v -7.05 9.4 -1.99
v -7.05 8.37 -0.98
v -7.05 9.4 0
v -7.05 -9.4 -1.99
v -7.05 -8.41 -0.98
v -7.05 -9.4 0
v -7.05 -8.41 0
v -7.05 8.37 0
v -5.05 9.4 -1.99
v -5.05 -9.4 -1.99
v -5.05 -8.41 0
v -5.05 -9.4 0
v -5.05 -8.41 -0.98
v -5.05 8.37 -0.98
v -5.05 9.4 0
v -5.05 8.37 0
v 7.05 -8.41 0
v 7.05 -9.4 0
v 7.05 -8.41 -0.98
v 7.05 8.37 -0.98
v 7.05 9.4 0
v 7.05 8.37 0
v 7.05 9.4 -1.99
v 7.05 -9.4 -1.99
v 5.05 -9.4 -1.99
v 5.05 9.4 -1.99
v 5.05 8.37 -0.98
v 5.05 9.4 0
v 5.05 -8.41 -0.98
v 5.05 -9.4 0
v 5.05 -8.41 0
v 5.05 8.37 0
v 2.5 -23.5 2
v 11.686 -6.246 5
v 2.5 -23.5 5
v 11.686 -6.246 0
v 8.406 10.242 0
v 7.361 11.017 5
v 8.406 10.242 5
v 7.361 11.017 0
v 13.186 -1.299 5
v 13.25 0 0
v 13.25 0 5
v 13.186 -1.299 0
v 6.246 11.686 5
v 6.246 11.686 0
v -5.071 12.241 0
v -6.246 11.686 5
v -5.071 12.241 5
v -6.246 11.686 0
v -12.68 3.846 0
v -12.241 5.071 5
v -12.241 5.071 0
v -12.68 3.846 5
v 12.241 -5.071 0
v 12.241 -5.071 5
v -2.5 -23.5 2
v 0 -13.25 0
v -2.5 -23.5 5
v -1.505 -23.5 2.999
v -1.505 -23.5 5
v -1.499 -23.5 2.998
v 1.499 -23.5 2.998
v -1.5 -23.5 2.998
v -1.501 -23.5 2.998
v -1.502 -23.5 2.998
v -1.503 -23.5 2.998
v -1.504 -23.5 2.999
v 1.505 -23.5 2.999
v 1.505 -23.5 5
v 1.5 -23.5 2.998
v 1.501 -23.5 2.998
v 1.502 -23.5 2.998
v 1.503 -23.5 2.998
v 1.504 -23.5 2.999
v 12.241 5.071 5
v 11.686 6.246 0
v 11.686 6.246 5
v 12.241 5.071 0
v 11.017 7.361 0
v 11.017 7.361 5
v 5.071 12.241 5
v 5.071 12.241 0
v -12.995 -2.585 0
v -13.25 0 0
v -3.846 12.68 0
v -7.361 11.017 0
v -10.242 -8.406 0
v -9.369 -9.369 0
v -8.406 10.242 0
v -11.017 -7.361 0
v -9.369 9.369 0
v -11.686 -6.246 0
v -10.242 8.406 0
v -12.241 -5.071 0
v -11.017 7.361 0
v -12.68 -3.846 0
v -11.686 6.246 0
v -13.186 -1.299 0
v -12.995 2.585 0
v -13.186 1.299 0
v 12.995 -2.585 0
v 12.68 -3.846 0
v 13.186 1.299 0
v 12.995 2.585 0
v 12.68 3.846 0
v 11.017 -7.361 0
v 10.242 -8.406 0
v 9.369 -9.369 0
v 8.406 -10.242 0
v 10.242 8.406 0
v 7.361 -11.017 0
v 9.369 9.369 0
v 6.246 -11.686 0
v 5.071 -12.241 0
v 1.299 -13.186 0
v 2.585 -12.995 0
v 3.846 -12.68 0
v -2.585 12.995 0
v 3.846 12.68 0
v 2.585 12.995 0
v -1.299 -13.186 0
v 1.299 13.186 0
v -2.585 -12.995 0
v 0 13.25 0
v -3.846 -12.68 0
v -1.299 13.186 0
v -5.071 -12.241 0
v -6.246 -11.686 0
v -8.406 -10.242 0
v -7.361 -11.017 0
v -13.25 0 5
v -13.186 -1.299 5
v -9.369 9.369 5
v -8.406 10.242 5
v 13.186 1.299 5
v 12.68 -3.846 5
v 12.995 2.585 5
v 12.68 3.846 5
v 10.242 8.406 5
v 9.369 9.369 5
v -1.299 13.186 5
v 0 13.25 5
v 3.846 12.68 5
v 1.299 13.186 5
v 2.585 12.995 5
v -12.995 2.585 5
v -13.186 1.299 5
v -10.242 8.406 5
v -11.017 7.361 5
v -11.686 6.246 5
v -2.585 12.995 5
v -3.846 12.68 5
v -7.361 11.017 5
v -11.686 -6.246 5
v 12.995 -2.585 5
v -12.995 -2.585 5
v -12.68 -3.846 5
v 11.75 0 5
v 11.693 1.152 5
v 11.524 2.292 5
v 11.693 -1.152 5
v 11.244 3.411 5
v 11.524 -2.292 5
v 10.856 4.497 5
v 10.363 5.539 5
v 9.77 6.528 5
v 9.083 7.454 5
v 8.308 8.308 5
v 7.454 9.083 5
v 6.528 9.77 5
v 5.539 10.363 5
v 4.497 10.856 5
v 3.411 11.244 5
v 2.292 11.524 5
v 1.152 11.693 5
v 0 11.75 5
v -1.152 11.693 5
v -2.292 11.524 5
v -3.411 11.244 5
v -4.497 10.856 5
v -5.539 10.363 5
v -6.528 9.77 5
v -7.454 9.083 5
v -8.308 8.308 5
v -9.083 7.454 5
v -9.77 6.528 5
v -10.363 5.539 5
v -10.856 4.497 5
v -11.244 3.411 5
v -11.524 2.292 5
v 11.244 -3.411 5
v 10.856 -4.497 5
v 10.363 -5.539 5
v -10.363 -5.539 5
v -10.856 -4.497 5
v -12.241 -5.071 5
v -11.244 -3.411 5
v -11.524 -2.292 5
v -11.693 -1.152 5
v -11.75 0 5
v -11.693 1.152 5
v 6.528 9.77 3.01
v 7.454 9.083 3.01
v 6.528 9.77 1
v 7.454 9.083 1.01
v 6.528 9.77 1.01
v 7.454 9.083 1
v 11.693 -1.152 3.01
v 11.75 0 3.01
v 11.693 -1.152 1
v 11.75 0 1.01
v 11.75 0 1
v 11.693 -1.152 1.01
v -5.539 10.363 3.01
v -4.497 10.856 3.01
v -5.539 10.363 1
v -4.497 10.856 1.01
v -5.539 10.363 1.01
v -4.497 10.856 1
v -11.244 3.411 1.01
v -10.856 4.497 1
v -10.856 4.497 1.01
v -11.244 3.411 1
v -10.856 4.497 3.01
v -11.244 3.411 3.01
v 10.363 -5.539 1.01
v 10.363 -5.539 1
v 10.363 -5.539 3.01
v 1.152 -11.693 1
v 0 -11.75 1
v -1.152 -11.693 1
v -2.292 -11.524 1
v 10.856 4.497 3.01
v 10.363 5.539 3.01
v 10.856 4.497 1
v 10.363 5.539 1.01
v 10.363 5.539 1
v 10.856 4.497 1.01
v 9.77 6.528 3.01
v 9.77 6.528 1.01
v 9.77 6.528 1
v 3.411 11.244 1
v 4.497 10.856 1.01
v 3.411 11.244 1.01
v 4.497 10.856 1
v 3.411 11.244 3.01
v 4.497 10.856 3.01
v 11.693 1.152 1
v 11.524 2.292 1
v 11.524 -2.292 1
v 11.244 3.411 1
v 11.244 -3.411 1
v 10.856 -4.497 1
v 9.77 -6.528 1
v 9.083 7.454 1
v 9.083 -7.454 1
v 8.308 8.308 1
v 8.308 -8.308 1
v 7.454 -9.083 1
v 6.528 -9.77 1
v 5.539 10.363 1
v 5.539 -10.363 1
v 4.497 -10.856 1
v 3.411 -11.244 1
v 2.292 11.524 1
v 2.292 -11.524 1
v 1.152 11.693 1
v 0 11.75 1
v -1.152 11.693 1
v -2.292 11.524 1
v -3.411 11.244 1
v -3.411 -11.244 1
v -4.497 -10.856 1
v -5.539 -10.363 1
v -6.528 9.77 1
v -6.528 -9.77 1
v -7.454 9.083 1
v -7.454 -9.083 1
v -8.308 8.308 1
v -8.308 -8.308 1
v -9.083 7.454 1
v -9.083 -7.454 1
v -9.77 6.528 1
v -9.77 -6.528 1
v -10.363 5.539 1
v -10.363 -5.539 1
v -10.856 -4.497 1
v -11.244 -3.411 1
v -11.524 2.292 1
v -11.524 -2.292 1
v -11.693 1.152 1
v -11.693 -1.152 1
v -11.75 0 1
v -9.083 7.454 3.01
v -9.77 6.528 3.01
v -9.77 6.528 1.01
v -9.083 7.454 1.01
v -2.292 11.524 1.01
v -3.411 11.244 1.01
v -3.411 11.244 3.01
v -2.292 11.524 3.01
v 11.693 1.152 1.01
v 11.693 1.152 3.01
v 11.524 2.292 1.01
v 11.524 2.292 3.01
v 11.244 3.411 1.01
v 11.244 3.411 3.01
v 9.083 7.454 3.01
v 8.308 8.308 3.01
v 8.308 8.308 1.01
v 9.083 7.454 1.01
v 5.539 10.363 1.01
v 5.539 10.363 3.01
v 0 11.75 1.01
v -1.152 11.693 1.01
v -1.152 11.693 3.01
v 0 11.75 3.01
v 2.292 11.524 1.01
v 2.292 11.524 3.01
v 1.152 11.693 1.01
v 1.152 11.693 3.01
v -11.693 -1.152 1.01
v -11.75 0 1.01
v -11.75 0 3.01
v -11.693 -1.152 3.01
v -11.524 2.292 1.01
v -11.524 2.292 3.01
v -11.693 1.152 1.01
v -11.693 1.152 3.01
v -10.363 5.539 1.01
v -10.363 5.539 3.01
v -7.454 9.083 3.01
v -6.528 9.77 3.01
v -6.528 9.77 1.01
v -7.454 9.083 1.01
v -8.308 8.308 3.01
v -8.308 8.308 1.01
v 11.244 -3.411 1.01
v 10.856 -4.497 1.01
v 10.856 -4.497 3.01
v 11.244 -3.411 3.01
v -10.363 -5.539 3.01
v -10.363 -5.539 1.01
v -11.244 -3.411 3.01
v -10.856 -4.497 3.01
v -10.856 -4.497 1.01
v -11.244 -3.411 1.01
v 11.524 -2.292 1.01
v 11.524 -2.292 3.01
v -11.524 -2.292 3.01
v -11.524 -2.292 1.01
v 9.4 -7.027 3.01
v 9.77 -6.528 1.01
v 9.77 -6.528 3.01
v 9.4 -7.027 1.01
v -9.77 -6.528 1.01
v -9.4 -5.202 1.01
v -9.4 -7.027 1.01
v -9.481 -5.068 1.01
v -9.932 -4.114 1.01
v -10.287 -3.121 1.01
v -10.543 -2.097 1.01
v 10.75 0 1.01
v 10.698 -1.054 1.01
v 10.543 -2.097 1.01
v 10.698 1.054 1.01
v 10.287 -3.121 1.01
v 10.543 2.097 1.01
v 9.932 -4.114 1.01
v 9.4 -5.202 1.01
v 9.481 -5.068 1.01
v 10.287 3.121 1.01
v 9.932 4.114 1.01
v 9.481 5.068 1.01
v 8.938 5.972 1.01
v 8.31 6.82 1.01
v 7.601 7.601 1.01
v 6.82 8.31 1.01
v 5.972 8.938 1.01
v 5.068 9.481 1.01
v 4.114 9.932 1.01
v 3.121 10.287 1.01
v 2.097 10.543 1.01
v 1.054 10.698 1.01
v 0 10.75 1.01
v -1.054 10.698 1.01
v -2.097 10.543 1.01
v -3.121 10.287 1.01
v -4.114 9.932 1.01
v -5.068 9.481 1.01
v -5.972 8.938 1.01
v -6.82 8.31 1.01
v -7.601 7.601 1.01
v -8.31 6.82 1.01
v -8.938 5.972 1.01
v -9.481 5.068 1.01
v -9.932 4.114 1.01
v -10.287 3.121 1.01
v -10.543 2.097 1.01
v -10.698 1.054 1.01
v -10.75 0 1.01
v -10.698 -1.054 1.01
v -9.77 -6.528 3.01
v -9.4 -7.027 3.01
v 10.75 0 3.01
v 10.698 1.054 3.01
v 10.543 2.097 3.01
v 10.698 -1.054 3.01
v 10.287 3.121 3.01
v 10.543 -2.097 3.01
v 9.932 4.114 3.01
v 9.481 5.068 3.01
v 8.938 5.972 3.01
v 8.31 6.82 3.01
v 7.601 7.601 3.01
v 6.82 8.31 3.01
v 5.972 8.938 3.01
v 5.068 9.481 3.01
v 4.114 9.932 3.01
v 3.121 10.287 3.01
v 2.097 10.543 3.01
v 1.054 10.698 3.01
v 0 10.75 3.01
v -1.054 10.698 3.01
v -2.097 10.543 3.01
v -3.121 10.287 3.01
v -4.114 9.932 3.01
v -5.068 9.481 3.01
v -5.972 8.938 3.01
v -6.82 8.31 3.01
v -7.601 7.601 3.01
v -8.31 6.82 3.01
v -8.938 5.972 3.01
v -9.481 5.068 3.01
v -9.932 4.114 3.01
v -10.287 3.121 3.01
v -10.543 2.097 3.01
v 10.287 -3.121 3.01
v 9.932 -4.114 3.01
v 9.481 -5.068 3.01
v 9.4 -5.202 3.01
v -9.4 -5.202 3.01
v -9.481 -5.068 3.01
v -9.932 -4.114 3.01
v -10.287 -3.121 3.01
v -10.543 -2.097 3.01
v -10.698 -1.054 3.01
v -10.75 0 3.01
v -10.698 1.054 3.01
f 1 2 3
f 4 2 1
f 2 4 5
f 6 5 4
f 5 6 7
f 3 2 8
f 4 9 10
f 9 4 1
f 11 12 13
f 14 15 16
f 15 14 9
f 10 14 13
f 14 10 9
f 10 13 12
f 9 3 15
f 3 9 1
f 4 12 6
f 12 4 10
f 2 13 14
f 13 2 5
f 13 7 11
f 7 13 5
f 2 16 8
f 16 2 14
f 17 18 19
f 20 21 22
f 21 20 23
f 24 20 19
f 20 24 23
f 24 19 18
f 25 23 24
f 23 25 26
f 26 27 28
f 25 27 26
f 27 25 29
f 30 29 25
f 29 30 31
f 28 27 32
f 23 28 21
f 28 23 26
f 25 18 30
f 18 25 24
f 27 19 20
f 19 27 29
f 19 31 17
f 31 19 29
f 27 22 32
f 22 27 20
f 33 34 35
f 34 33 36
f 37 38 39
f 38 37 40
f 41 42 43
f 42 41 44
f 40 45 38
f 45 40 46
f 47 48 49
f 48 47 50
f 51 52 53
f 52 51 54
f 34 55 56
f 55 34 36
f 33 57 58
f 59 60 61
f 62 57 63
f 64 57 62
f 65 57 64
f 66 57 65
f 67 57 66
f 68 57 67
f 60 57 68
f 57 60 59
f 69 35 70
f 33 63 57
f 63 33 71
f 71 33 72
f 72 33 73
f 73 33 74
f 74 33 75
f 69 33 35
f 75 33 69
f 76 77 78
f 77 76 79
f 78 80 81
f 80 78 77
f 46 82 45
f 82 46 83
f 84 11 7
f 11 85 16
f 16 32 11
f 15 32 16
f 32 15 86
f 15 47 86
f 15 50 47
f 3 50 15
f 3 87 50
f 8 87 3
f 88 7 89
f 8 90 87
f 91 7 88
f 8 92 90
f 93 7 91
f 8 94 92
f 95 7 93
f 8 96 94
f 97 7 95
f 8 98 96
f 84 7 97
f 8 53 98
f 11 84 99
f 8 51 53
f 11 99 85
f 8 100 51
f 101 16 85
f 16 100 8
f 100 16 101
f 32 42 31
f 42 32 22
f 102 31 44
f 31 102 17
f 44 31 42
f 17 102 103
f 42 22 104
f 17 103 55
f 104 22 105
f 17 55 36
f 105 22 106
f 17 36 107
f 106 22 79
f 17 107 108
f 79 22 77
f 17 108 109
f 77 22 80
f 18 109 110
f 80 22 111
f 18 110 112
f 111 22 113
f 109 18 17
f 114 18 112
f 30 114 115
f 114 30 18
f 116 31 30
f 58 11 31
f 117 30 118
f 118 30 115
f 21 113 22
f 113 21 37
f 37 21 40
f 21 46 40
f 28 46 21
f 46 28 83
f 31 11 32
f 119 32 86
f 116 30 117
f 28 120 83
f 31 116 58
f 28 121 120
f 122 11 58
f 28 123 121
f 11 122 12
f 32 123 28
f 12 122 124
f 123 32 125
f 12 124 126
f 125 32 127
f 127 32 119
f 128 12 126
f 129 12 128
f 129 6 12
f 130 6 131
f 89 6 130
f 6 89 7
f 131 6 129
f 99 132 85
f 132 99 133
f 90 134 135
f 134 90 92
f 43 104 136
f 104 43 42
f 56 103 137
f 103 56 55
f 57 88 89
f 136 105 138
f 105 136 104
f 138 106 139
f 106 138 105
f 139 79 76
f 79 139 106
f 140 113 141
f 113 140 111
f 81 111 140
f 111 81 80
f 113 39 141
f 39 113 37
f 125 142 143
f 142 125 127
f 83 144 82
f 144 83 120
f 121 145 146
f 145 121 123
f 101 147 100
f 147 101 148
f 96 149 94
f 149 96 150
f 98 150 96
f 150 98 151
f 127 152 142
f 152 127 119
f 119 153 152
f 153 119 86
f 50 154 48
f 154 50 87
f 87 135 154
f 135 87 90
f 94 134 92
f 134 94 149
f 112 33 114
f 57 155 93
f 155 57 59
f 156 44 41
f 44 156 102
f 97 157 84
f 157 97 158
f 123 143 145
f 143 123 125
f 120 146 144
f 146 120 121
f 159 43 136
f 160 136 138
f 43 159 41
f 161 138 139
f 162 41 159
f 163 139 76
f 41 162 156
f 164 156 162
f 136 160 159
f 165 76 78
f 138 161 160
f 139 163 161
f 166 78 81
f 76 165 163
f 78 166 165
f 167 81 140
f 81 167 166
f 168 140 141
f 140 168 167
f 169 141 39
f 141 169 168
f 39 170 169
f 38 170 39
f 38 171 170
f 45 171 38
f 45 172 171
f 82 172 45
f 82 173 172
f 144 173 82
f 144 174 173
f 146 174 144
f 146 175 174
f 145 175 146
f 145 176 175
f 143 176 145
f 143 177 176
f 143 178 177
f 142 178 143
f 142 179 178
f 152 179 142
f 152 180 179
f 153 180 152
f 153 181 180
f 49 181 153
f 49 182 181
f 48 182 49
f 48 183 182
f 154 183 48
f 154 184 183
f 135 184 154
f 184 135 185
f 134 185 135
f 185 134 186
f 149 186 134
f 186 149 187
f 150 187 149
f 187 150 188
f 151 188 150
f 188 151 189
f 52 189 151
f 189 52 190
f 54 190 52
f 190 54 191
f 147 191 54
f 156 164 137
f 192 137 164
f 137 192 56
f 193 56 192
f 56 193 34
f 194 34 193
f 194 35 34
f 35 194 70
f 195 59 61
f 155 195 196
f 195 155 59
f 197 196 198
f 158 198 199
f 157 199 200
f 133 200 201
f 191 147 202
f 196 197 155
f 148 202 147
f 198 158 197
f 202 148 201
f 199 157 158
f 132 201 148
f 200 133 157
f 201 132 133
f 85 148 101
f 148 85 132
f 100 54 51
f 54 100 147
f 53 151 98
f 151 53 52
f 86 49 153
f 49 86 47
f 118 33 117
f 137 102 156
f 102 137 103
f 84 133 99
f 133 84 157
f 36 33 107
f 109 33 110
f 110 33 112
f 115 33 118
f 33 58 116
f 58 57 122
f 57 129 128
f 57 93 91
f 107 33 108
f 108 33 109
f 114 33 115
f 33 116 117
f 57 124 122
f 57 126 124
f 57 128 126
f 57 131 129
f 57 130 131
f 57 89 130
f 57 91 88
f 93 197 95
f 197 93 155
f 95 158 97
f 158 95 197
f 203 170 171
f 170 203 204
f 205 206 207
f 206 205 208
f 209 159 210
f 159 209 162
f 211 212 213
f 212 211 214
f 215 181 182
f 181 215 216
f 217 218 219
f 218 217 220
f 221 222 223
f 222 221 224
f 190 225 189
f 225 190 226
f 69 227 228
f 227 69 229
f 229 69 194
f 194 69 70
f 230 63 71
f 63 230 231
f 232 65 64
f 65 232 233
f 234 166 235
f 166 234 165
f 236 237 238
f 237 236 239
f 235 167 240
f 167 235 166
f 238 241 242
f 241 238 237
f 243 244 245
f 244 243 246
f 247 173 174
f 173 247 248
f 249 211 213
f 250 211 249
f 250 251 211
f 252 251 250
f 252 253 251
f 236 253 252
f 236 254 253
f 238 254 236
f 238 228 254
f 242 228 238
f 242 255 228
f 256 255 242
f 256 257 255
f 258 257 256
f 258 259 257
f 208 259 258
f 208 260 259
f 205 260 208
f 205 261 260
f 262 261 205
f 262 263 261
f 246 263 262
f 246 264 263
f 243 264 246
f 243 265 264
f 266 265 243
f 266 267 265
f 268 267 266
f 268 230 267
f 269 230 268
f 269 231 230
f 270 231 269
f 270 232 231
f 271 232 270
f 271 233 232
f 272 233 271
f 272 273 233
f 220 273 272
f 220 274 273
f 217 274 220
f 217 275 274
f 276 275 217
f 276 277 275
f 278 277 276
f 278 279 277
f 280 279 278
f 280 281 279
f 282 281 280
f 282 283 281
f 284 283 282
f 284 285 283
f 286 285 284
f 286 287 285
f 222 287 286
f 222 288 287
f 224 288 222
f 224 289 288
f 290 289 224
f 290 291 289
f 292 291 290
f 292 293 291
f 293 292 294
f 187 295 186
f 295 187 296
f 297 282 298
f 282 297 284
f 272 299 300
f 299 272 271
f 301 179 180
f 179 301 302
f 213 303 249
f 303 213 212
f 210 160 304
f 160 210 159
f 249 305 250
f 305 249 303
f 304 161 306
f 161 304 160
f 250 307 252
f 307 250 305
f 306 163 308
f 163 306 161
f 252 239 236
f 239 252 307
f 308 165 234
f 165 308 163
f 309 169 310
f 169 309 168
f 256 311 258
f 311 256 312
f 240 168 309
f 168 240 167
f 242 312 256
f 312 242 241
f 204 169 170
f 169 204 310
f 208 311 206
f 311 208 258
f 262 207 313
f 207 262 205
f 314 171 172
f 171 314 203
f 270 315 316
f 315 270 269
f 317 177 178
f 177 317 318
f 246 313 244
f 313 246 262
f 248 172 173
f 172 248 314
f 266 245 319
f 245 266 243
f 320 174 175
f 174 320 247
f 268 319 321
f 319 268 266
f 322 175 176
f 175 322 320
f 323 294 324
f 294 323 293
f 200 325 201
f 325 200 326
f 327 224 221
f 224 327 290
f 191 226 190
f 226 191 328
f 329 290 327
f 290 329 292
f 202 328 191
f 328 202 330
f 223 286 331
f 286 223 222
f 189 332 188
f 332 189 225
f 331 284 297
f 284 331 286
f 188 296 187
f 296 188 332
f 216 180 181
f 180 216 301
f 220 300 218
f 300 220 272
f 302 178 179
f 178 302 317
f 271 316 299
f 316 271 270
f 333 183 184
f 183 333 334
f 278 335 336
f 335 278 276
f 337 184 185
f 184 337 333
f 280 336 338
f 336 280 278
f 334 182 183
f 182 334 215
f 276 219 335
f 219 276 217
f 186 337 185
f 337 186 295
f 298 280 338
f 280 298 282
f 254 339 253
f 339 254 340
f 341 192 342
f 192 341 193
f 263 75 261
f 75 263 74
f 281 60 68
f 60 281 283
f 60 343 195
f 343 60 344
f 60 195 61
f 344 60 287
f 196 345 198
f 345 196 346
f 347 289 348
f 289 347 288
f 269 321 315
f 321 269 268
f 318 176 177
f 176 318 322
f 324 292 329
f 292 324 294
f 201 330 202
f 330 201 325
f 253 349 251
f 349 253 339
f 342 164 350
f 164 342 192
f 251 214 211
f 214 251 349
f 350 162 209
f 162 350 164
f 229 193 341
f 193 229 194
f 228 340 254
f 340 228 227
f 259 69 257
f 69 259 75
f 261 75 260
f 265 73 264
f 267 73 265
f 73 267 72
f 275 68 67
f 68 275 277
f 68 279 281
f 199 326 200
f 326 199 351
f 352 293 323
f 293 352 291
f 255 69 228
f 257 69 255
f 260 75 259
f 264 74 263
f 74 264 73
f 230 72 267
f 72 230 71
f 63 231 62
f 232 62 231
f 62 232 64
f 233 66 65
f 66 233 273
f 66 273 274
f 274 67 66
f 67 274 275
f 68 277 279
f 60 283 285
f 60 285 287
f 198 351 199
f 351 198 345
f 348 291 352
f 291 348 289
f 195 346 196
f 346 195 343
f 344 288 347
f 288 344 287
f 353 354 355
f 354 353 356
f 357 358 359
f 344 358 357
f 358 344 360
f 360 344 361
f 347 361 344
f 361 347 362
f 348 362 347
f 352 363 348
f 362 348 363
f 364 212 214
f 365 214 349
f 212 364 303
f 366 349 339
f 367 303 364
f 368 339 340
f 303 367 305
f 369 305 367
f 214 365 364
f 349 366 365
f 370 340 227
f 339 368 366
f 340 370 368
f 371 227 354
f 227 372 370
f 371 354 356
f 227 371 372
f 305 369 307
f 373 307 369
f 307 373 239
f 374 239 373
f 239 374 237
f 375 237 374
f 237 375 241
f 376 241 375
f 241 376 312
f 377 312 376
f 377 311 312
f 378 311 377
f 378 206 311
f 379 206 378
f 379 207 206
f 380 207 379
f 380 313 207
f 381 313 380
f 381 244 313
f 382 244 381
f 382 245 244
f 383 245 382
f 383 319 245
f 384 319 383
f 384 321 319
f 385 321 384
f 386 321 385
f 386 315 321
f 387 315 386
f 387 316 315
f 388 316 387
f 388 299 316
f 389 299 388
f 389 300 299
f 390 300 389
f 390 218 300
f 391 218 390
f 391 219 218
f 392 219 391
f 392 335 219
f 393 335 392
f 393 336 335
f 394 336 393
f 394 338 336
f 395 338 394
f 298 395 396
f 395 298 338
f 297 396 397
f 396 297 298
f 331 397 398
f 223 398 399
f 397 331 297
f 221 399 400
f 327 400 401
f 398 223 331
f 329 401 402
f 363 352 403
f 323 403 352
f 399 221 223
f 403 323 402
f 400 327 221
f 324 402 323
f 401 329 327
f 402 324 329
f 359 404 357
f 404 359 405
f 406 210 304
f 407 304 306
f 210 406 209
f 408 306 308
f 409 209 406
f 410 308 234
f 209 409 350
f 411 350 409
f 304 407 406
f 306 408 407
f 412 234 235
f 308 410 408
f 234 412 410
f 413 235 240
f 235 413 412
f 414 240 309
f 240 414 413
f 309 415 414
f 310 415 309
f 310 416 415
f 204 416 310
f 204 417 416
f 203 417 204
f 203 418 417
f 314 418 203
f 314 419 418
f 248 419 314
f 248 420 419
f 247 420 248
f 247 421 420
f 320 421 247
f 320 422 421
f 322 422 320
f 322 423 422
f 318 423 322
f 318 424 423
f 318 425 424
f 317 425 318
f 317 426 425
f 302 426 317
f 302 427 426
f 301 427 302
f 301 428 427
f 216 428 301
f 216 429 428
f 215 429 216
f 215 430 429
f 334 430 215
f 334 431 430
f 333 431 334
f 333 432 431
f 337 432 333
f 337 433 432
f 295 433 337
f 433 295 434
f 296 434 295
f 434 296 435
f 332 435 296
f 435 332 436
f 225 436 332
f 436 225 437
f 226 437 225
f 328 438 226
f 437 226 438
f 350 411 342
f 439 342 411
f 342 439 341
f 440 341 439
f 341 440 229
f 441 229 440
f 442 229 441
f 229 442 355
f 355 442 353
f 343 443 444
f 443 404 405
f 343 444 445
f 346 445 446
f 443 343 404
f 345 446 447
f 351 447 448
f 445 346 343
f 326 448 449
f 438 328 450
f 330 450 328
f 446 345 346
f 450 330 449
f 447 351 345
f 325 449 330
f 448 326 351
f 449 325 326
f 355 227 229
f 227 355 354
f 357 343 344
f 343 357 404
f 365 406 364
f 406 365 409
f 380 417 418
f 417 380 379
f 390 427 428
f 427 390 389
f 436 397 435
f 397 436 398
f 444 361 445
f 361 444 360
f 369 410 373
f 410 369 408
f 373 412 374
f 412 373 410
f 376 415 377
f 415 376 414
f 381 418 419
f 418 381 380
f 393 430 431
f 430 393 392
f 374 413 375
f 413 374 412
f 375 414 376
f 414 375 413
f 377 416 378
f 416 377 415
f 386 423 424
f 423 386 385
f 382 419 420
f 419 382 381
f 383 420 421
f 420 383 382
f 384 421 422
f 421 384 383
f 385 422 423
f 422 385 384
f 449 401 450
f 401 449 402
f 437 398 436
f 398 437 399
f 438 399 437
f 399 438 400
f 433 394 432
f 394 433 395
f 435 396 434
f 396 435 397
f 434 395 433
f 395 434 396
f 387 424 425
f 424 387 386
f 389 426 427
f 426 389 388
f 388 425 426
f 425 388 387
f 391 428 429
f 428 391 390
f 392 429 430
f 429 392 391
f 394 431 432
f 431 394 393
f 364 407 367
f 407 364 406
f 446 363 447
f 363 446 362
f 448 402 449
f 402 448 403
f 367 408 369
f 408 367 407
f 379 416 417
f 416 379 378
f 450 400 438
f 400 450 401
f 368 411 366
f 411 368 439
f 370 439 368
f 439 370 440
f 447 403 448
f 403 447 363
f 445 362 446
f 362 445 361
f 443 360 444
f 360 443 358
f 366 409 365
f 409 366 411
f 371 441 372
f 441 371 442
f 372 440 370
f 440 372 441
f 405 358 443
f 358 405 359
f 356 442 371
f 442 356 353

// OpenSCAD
e=0.01;
$fn=64;

inner_d = 23.5;
thickness = 5;
floor = 1;

union() {
    difference() {
        hull() {
            cylinder(h=thickness, d=inner_d+3);
            
            translate([-thickness/2, -inner_d, 2])
            cube([thickness, inner_d/2, thickness-2]);
        }
        
        translate([0, 0, floor])
        hull() {
            cylinder(h=thickness, d=inner_d);

            translate([-0.6*thickness/2, -inner_d-e, 2])
            cube([0.6*thickness, inner_d/2, thickness-2]);
        }
    }
    
    translate([0, 0, floor + e])
    difference() {
        cylinder(h=2, d=inner_d);
        
        translate([0, 0, -e])
        cylinder(h=5+2*e, d=inner_d-2);
        
        w = 0.8*inner_d;
        translate([-w/2, -25, -e])
        cube([w, 20, 15]);
    }
}

translate([0, 0, e])
for(a=[-1,1]) {
    h = 0.4 * thickness;
    l = 0.8*inner_d;
    th = 1;

    scale([a,1,1])
    translate([0.3*inner_d, -l/2, 0])
    rotate([0,180,0])
    difference() {
        cube([2*th, l, h]);
        
        translate([-e, th-e, -e])
        cube([10, l-2*th-2*e, h-th]);
    }
}
